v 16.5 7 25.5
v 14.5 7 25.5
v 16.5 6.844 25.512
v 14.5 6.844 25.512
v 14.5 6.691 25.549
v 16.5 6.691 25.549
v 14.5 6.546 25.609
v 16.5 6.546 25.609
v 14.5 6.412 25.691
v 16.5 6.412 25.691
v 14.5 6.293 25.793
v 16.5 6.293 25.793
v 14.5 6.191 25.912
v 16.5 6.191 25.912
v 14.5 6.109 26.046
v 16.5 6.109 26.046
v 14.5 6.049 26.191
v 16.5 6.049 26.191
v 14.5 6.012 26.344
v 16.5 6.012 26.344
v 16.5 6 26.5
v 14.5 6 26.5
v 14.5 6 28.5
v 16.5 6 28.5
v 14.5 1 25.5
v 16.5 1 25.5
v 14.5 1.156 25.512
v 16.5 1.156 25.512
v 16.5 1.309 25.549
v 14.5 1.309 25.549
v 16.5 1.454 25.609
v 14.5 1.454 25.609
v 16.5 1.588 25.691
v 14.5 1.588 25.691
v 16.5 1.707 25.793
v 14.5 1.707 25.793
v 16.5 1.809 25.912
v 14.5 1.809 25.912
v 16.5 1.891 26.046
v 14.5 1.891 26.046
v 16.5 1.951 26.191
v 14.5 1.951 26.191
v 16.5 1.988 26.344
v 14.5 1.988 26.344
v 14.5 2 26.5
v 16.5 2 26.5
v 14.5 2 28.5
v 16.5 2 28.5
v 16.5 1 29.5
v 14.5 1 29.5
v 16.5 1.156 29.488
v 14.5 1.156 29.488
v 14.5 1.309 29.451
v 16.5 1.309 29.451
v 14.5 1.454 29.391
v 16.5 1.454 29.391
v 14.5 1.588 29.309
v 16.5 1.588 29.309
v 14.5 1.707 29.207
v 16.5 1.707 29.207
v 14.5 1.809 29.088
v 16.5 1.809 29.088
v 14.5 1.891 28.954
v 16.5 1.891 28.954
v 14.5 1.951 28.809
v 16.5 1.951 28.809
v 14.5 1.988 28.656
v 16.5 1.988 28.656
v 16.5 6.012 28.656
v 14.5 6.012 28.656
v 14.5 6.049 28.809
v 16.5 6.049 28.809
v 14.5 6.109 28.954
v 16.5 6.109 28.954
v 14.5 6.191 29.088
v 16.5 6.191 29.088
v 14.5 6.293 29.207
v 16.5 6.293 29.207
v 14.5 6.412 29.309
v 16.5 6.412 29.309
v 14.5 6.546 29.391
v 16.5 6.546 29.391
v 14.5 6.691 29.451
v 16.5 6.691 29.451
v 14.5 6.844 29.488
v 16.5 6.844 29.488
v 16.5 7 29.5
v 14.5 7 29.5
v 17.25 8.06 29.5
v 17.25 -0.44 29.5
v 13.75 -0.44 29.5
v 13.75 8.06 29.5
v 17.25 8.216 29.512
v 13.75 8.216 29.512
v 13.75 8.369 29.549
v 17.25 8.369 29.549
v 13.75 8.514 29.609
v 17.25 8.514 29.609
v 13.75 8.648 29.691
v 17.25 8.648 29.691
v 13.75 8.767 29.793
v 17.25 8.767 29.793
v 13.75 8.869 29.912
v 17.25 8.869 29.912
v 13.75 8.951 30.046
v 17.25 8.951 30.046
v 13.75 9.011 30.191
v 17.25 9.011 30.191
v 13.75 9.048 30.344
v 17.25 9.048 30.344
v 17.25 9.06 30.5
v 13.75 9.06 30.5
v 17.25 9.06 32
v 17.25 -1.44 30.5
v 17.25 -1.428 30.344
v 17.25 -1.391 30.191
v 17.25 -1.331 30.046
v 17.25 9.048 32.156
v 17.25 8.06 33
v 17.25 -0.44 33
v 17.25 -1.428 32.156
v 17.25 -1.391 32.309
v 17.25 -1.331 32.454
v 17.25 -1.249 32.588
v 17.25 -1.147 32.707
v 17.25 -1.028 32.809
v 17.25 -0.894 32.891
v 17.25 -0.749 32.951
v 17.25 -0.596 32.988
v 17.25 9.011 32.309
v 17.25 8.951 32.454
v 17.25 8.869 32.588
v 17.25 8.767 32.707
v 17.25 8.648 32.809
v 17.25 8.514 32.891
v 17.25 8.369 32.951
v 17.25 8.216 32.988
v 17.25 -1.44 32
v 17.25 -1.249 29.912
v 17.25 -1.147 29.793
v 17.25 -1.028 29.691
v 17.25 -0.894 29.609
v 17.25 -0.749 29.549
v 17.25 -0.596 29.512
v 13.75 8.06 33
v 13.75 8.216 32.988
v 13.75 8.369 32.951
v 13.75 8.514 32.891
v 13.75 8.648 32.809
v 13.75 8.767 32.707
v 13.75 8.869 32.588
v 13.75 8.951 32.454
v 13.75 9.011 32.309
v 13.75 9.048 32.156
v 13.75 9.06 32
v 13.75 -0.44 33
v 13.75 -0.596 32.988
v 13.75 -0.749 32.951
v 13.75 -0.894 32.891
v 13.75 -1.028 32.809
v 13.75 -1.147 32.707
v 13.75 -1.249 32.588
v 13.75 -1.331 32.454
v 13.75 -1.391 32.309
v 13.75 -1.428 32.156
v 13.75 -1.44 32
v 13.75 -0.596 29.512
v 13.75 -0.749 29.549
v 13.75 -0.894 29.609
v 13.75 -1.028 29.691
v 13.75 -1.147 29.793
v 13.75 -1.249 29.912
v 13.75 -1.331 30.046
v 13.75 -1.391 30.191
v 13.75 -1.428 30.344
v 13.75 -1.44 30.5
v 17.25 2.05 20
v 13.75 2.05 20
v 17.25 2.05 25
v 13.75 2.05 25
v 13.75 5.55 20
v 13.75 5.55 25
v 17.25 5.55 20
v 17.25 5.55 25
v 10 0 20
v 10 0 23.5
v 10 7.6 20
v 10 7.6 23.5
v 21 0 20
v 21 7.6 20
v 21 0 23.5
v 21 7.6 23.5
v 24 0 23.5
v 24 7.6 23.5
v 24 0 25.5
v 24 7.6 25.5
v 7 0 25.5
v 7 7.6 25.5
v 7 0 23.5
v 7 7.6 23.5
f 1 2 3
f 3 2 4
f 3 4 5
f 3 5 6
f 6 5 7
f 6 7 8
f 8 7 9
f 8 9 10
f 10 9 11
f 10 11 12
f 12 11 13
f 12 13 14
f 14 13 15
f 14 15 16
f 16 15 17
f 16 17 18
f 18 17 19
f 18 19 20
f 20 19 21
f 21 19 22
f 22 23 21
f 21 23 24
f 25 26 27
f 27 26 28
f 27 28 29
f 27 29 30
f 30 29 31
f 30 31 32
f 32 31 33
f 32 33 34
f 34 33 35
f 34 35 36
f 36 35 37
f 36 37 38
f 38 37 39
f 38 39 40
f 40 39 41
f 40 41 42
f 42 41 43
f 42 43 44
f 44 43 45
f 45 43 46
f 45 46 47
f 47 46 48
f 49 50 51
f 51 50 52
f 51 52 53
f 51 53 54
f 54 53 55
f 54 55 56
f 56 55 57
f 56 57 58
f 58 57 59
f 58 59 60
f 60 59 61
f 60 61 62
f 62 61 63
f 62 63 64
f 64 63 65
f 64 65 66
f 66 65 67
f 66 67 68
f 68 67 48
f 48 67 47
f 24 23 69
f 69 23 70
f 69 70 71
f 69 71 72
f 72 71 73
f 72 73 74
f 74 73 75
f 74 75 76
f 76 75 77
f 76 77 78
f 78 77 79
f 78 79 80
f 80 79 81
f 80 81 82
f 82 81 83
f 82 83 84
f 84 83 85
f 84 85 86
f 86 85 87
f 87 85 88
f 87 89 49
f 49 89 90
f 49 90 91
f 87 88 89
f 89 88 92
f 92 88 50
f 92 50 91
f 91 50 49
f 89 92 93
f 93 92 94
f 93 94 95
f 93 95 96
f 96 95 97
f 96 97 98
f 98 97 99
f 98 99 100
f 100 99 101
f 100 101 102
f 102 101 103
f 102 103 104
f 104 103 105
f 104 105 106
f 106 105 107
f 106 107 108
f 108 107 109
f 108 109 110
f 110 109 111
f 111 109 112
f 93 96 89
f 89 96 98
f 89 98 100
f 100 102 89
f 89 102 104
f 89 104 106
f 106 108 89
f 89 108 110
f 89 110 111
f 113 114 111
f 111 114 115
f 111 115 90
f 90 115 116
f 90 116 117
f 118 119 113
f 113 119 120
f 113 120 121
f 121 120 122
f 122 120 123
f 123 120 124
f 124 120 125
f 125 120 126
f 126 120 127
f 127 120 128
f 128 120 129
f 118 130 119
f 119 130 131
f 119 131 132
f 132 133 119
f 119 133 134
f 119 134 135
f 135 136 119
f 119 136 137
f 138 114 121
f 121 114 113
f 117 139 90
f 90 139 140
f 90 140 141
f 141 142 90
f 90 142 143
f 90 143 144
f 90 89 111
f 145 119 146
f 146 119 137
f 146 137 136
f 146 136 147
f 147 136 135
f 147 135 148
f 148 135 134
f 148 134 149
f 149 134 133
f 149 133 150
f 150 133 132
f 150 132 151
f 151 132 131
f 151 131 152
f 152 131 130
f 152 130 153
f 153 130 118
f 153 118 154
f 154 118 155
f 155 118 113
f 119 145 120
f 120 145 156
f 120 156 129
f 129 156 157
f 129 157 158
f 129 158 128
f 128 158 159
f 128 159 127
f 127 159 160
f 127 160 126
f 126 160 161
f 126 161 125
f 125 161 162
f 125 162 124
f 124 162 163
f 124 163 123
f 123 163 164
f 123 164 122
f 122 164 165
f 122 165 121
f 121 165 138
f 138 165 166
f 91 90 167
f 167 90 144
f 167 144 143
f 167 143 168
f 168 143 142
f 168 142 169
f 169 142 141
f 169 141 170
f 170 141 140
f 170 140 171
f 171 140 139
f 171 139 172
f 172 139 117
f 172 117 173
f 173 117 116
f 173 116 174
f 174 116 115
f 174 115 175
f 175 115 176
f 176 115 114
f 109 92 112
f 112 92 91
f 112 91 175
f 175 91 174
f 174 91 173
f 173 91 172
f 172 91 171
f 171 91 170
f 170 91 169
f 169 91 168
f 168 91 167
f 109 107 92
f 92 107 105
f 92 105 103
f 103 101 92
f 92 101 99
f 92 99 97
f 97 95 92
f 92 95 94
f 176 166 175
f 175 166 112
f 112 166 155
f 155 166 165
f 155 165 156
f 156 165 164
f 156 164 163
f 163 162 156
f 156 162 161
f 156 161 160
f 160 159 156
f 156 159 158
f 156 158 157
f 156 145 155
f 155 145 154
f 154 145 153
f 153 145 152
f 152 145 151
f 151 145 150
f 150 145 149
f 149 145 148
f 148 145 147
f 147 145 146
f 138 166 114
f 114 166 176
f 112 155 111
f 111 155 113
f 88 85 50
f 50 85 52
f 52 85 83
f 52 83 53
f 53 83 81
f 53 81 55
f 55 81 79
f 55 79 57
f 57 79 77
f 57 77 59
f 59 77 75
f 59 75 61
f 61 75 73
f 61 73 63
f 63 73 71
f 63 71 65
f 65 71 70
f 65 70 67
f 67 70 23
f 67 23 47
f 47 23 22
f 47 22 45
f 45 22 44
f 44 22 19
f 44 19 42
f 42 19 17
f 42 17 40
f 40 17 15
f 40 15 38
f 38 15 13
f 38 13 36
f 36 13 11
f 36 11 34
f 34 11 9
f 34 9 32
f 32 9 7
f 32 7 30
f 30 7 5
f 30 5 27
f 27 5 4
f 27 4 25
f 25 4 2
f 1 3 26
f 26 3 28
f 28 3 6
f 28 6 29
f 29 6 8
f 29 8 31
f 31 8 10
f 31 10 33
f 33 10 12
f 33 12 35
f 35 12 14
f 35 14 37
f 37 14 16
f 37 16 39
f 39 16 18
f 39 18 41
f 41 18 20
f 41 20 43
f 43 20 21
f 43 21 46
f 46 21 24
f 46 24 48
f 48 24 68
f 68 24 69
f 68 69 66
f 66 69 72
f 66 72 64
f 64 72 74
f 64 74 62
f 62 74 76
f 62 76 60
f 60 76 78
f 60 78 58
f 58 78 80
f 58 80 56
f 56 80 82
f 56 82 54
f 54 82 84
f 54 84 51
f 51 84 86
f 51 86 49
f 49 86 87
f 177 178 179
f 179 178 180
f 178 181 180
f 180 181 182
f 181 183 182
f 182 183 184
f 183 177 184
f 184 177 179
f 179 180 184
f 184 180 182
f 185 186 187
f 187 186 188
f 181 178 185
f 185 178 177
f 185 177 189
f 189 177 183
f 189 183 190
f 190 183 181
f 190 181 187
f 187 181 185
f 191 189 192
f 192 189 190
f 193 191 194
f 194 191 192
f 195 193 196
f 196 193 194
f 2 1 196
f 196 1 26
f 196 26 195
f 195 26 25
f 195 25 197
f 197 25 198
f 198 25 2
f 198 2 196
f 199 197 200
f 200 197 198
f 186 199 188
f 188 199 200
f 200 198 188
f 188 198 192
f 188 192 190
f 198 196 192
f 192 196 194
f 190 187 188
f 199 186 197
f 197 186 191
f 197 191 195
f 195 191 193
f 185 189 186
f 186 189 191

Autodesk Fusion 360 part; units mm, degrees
sketch "Sketch1" plane through (0, 0, 0) normal (0, 1, 0) x (1, 0, 0)
  line L0 (10, -20) -> (21, -20)
  line L1 (21, -20) -> (21, -23.5)
  line L2 (21, -23.5) -> (24, -23.5)
  line L3 (24, -23.5) -> (24, -25.5)
  line L4 (24, -25.5) -> (7, -25.5)
  line L5 (7, -25.5) -> (7, -23.5)
  line L6 (7, -23.5) -> (10, -23.5)
  line L7 (10, -23.5) -> (10, -20)
extrude "Extrude1" add sketch "Sketch1" along normal blind 7.6
sketch "Sketch2" plane through (0, 0, 20) normal (0, 0, -1) x (1, 0, 0)
  line L0 (21, 0) -> (10, 0)
  line L1 (10, 0) -> (10, -7.6)
  line L2 (10, -7.6) -> (21, -7.6)
  line L3 (21, -7.6) -> (21, 0)
  line L4 (17.25, -2.05) -> (13.75, -2.05)
  line L5 (13.75, -2.05) -> (13.75, -5.55)
  line L6 (13.75, -5.55) -> (17.25, -5.55)
  line L7 (17.25, -5.55) -> (17.25, -2.05)
  line L8 (17.25, -2.05) -> (13.75, -5.55) construction
  line L9 (13.75, -2.05) -> (17.25, -5.55) construction
  point P0 (15.5, -3.8)
  dimension "d9" = 3.5
  dimension "d10" = 3.5
extrude "Extrude2" cut sketch "Sketch2" against normal blind 5 contours L4 L5 L6 L7
sketch "Sketch3" plane through (0, 0, 0) normal (0, 0, 1) x (1, 0, 0)
  line L0 (14, 0) -> (14.5, 0)
  line L1 (14.5, 0) -> (13.5, 0)
sketch "Sketch4" plane through (0, 0, 0) normal (0, -1, 0) x (1, 0, 0)
  line L0 (7, 23.5) -> (10, 23.5)
  line L1 (10, 23.5) -> (10, 20)
  line L2 (10, 20) -> (21, 20)
  line L3 (21, 20) -> (21, 23.5)
  line L4 (21, 23.5) -> (24, 23.5)
  line L5 (24, 23.5) -> (24, 25.5)
  line L6 (24, 25.5) -> (7, 25.5)
  line L7 (7, 25.5) -> (7, 23.5)
  line L8 (15.5, 25.5) -> (16.5, 25.5)
  line L9 (16.5, 25.5) -> (16.5, 29.5)
  line L10 (16.5, 29.5) -> (14.5, 29.5)
  line L11 (14.5, 29.5) -> (14.5, 25.5)
  line L12 (14.5, 25.5) -> (15.5, 25.5)
  line L13 (15.5, 29.5) -> (17.25, 29.5)
  line L14 (17.25, 29.5) -> (17.25, 33)
  line L15 (17.25, 33) -> (13.75, 33)
  line L16 (13.75, 33) -> (13.75, 29.5)
  line L17 (13.75, 29.5) -> (15.5, 29.5)
extrude "Extrude3" add sketch "Sketch4" against normal blind 4 from surface at -2 contours L6 L8 L9 L10 L11 L12 L13 L17
extrude "Extrude4" add sketch "Sketch4" against normal blind 10.5 from surface at 1.44 contours L10 L13 L14 L15 L16 L17
fillet "Fillet1" radius 1 8 edges at (15.5, -1.44, 29.5) (15.5, -1.44, 33) (15.5, 9.06, 33) (15.5, 9.06, 29.5) (15.5, 6, 29.5) (15.5, 2, 29.5) (15.5, 2, 25.5) (15.5, 6, 25.5)
